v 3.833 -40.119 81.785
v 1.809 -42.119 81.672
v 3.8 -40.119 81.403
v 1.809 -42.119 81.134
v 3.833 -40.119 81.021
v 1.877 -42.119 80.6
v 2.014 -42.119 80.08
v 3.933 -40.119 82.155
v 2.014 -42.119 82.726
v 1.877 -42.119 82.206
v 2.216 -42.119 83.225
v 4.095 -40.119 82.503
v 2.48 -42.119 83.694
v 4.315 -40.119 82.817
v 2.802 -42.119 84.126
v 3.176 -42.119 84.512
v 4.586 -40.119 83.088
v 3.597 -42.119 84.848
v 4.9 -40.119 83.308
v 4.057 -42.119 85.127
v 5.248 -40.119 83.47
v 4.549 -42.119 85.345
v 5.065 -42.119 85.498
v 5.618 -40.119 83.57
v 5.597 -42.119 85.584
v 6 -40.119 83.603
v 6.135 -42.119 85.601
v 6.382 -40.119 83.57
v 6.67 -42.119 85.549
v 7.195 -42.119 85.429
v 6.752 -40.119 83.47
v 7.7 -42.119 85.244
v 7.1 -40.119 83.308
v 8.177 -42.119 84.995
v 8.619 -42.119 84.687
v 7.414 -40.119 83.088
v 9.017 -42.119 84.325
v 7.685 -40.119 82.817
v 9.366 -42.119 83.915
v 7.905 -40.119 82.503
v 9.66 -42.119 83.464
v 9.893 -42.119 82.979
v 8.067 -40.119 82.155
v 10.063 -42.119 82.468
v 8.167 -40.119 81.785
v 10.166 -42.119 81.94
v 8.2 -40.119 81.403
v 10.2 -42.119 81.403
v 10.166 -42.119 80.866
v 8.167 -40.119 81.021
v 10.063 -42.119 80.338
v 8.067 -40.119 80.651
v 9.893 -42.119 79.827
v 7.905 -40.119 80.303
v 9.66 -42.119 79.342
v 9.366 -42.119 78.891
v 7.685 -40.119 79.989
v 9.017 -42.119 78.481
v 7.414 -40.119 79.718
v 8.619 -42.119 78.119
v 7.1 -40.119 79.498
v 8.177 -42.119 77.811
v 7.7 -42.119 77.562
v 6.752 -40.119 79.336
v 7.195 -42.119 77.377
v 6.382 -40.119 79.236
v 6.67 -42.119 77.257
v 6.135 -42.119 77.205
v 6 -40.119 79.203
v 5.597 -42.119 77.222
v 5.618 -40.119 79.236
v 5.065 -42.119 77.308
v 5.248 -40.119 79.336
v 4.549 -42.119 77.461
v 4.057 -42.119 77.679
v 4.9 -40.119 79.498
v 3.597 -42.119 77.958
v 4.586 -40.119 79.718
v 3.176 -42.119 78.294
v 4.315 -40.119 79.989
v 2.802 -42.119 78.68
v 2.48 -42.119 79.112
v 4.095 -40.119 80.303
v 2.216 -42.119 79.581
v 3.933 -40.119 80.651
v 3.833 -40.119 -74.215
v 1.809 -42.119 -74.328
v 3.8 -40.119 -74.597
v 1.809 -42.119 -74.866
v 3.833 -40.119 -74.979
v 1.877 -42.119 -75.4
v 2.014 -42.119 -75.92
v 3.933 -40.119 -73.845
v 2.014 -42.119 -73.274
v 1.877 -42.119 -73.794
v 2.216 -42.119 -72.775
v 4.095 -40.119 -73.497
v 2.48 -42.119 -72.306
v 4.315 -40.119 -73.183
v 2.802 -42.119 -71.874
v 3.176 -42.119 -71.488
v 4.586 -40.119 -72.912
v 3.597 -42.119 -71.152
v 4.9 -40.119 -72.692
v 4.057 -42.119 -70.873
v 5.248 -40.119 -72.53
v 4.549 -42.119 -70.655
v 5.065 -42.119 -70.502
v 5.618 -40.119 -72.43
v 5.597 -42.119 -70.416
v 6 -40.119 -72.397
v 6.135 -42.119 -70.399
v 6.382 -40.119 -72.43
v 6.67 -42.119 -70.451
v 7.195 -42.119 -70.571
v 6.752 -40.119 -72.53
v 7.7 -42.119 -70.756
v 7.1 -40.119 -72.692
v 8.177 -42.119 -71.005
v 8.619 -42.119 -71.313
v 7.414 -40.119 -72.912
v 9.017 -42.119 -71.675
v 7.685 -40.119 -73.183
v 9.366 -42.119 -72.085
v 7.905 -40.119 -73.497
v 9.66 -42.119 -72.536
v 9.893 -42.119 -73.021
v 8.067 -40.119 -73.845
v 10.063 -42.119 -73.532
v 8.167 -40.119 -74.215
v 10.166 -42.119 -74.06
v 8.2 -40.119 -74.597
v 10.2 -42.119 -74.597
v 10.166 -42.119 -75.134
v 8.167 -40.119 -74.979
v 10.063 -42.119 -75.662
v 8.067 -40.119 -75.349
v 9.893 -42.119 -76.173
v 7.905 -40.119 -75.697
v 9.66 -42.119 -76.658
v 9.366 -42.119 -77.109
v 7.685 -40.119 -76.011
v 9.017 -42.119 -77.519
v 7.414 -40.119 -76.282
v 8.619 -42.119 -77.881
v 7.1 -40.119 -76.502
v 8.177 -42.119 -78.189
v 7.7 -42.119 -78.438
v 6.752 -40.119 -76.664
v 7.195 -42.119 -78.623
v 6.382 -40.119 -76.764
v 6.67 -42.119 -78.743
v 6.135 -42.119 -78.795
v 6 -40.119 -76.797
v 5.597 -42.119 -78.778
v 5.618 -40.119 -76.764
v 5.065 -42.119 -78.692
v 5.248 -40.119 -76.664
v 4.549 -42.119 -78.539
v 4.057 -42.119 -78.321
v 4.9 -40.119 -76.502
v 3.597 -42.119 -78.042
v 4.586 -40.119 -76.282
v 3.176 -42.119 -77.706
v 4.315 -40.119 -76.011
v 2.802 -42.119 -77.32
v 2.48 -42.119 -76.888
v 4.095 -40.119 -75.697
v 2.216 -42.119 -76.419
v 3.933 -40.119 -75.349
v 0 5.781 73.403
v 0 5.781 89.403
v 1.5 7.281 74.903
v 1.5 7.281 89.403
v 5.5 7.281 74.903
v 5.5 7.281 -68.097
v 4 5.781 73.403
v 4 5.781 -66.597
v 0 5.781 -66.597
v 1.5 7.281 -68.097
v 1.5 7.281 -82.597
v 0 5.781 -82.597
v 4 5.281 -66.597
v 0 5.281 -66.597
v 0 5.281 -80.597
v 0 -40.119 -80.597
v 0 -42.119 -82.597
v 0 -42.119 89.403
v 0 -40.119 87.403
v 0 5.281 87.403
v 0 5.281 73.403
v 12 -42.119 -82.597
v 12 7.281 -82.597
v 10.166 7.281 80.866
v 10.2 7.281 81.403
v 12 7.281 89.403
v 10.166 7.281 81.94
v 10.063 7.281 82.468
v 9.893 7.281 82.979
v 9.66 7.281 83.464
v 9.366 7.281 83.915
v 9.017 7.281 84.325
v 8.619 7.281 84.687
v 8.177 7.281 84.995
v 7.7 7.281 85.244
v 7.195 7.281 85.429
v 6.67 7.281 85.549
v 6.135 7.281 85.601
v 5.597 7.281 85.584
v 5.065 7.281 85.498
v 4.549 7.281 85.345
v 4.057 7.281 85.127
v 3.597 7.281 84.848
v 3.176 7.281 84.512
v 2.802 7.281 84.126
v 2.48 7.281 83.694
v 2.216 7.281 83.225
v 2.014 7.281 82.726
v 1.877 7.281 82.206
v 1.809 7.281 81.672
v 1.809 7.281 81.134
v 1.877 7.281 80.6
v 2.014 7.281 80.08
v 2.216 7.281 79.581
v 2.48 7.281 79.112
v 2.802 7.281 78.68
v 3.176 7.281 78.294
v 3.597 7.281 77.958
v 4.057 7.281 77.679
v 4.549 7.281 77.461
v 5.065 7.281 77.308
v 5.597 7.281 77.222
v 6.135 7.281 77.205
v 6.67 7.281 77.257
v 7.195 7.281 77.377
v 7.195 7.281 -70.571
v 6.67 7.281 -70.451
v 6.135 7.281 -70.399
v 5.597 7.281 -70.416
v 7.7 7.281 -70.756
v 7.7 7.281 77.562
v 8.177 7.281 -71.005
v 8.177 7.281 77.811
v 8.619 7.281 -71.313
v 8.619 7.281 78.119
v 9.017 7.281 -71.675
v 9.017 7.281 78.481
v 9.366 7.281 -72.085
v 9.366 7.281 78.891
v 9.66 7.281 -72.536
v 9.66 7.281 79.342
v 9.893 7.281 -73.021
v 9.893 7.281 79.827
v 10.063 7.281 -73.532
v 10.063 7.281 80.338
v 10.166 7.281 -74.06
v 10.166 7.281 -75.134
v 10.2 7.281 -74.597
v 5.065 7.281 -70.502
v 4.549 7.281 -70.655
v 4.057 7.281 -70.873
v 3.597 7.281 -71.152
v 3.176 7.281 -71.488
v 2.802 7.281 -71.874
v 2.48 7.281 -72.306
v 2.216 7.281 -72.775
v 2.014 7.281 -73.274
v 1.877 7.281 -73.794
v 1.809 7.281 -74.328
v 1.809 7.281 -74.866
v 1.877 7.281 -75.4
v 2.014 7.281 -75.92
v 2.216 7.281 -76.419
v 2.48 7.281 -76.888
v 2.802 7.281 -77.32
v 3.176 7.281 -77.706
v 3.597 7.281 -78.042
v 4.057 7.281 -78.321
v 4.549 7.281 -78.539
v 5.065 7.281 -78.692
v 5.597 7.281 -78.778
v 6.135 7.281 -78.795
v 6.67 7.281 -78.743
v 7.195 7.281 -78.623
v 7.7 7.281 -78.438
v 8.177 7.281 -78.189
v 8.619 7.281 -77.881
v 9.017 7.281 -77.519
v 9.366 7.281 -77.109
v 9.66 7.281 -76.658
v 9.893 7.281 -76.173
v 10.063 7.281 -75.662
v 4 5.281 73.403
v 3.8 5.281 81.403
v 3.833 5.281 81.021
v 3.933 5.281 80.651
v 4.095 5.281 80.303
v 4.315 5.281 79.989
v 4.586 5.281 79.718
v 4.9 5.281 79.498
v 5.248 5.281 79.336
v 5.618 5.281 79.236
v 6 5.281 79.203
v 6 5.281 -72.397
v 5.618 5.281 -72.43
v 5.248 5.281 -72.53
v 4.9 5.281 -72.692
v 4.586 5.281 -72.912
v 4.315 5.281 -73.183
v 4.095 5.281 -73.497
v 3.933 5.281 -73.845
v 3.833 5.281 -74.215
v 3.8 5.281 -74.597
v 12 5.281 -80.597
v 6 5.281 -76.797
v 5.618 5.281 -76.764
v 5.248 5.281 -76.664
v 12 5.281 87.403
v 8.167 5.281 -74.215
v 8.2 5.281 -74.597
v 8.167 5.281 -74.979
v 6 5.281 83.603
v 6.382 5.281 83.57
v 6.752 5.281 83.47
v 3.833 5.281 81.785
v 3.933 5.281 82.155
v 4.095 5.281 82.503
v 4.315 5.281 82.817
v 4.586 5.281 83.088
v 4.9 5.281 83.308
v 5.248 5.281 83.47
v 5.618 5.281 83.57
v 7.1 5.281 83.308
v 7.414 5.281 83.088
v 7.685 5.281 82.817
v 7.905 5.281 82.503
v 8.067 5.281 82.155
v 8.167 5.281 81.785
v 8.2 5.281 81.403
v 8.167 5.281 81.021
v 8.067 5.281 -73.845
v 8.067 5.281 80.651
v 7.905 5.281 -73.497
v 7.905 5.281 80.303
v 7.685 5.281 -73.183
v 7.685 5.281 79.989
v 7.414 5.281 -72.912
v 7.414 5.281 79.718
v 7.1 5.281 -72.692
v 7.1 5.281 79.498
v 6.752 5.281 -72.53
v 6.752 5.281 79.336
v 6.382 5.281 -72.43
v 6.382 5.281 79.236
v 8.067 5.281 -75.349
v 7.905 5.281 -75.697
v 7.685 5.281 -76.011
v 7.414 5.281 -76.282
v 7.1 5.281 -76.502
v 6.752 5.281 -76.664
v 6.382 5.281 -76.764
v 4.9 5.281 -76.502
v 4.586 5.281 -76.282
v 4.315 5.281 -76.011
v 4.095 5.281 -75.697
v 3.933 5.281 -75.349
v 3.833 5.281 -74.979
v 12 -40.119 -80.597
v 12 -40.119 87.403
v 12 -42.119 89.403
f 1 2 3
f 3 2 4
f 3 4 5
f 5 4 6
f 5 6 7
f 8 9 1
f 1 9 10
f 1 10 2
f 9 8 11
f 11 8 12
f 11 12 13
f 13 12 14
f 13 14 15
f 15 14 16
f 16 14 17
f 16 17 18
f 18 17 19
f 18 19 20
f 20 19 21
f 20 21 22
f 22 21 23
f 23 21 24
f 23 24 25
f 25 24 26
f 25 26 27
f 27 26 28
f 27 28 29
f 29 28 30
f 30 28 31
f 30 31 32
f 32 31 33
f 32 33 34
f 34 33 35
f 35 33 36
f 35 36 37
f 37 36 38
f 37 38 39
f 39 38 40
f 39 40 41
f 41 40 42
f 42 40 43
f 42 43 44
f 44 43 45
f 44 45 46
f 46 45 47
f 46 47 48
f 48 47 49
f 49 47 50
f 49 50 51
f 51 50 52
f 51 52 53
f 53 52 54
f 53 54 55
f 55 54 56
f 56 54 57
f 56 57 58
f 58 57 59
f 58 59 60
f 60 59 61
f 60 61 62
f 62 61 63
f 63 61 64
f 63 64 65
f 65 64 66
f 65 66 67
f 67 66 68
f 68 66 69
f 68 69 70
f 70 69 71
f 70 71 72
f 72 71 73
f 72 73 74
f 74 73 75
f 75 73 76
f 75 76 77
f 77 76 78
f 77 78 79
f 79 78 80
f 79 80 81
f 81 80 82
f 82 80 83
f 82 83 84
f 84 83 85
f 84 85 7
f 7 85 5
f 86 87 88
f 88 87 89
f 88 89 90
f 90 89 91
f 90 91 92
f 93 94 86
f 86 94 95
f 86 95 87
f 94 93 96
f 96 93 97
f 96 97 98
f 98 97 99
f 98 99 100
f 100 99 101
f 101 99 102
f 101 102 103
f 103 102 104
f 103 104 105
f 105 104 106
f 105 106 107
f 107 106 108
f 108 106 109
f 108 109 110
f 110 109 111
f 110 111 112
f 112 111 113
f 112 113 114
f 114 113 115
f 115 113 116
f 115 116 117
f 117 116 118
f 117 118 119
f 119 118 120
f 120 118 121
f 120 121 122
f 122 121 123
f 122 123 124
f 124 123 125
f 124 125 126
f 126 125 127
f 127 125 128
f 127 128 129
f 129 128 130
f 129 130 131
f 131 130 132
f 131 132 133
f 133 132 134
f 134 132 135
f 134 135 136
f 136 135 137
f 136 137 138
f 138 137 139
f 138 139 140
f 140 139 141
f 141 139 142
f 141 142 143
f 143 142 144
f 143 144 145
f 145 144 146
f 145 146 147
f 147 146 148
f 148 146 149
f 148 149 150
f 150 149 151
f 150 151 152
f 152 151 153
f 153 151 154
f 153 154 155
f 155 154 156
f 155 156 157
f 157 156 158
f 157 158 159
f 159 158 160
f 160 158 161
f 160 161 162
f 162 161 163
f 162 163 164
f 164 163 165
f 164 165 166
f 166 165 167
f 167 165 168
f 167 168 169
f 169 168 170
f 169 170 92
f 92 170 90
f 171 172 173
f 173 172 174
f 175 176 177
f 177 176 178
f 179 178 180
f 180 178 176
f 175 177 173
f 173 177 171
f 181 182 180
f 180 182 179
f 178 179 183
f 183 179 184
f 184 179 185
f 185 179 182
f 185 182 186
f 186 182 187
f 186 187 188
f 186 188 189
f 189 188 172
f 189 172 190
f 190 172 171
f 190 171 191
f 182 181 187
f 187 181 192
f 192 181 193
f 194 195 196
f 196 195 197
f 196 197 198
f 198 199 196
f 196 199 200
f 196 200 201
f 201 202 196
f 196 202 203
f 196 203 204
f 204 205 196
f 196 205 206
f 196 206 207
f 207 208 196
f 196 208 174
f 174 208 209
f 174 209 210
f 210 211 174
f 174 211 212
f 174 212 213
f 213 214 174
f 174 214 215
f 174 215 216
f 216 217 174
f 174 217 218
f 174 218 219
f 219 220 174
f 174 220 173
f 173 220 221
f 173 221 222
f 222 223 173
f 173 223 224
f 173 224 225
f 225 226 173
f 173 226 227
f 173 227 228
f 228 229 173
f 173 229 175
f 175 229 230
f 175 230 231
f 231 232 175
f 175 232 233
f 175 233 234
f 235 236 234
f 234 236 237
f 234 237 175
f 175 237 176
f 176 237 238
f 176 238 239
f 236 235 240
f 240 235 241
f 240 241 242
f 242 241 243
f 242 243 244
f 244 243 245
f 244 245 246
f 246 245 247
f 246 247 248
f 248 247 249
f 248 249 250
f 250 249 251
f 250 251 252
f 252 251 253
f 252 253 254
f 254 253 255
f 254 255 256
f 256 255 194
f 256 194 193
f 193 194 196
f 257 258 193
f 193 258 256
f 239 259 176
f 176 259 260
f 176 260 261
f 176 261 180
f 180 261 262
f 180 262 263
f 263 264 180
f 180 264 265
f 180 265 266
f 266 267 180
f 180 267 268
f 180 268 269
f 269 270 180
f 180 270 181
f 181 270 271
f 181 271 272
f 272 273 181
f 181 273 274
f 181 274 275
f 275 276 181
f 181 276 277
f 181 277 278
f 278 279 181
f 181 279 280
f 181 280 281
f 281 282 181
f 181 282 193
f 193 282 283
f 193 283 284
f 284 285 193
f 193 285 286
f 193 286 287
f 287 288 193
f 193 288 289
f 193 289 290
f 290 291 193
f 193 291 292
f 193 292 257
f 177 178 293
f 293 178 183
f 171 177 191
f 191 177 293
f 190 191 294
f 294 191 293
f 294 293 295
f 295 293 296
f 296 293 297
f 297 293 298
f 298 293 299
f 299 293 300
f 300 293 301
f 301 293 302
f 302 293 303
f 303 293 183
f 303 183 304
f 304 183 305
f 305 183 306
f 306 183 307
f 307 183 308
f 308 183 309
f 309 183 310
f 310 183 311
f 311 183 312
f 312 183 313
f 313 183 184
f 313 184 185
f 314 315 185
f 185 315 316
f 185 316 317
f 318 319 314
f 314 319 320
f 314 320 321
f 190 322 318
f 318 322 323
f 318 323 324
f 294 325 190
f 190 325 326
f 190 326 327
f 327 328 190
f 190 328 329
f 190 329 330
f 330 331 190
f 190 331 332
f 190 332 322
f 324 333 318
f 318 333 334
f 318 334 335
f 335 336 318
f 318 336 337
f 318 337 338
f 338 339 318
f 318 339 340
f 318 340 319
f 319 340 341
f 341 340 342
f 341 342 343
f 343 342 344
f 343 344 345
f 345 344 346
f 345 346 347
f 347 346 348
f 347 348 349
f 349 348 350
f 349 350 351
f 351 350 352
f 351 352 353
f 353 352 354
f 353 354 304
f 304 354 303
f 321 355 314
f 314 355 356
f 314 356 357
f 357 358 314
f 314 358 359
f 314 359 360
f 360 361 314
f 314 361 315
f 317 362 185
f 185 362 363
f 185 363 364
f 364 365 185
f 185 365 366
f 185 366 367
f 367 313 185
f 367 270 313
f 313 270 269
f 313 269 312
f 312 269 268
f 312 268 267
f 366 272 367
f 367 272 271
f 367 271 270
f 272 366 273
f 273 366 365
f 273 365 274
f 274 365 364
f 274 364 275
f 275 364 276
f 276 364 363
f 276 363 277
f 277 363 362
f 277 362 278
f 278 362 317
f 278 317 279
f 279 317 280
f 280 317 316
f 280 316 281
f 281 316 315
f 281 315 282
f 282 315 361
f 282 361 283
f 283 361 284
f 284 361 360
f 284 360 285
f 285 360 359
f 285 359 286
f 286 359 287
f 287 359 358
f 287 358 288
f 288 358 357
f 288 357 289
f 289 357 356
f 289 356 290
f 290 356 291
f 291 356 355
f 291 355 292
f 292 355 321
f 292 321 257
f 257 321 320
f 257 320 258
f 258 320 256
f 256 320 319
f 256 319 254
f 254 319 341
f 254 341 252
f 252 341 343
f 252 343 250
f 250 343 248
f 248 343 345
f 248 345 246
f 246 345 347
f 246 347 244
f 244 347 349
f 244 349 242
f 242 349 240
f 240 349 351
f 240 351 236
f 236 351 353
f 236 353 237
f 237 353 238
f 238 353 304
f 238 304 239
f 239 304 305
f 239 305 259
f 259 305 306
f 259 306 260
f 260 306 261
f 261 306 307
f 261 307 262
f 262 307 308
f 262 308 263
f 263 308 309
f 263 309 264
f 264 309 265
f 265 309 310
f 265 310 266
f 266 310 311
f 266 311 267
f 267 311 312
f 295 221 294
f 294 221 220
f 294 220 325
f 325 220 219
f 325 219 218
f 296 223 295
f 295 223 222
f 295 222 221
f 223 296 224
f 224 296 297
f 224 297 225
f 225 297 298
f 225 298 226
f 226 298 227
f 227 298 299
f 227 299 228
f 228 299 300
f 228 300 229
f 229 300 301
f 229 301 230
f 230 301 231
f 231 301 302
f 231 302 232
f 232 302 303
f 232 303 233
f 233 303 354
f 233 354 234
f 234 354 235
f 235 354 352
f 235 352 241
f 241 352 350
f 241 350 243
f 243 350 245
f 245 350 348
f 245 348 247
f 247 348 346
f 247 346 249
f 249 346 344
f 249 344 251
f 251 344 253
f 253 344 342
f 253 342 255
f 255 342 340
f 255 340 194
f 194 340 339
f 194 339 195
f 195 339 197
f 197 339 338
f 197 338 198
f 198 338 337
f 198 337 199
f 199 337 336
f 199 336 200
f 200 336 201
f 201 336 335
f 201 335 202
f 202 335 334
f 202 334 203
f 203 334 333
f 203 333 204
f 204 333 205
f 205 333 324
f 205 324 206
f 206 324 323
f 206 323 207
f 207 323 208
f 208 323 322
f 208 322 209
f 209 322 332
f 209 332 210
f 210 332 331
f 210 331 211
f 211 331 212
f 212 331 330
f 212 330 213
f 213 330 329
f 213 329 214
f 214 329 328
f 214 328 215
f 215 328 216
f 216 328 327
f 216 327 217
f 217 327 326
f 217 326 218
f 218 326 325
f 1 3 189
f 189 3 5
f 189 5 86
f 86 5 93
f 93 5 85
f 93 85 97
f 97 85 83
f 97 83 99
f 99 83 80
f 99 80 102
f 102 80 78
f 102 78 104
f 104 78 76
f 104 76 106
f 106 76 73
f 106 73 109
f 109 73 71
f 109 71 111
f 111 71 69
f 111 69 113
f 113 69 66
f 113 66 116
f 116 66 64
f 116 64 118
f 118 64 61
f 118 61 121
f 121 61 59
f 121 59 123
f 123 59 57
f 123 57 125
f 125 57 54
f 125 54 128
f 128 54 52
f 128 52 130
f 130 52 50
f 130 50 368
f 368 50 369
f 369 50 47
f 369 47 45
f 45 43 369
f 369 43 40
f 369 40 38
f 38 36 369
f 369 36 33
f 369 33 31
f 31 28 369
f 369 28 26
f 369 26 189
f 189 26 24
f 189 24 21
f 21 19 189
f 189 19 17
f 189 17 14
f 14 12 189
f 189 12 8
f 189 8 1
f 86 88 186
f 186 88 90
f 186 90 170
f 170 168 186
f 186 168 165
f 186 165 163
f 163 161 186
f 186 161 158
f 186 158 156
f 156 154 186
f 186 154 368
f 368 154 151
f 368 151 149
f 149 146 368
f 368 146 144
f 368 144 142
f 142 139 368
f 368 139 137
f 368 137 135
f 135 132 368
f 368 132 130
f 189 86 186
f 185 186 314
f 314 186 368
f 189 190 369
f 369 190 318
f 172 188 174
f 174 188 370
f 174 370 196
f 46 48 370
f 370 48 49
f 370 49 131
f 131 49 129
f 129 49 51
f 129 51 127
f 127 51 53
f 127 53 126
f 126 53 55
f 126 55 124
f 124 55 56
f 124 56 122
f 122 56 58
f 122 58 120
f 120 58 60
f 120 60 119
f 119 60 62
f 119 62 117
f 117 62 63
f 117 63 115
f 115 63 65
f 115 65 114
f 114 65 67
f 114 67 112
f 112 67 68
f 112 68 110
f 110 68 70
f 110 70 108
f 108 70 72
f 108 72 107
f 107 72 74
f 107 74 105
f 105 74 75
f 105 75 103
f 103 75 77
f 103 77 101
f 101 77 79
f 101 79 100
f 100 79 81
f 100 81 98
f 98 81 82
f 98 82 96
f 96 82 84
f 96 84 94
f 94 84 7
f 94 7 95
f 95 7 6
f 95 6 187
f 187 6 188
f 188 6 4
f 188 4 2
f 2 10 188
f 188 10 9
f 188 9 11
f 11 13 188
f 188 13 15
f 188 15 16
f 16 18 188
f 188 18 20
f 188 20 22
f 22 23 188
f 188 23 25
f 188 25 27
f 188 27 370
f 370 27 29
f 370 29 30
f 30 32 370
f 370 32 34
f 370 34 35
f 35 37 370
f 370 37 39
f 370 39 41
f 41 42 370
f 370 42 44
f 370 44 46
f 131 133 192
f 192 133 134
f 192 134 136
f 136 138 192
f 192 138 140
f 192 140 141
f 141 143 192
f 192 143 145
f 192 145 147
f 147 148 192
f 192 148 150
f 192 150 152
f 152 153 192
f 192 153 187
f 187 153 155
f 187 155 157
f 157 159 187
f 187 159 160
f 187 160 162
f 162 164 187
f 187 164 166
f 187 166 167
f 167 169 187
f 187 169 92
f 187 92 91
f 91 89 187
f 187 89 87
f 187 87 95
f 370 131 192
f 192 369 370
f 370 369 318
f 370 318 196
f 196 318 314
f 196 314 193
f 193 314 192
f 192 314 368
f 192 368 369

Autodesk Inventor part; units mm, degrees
ref_plane "YZ Plane" through (0, 0, 0) normal (1, 0, 0) x (0, 1, 0)
ref_plane "XZ Plane" through (0, 0, 0) normal (0, 1, 0) x (-1, 0, 0)
ref_plane "XY Plane" through (0, 0, 0) normal (0, 0, 1) x (1, 0, 0)
sketch "Sketch1" plane through (0, 0, 0) normal (1, 0, 0) x (0, 1, 0)
  line L0 (5.2806, 87.403) -> (-40.1194, 87.403)
  line L1 (-40.1194, 87.403) -> (-40.1194, -80.597)
  line L2 (-40.1194, -80.597) -> (5.2806, -80.597)
  line L3 (5.2806, -80.597) -> (5.2806, 87.403)
  line L4 (7.2806, 89.403) -> (-42.1194, 89.403)
  line L5 (-42.1194, 89.403) -> (-42.1194, -82.597)
  line L6 (-42.1194, -82.597) -> (7.2806, -82.597)
  line L7 (7.2806, -82.597) -> (7.2806, 89.403)
  point P0 (0, 0)
  dimension "d0" = 168
  dimension "d1" = 45.4
  dimension "d2" = 2
extrude "Extrusion1" add sketch "Sketch1" along normal blind 12
sketch "Sketch2" plane through (0, 7.2806, 89.403) normal (0, 1, 0) x (1, 0, 0)
  line L0 (12, 172) -> (12, 0) projected
  line L1 (0, 0) -> (12, 0) projected
  point P0 (0, 89.403)
  point P1 (6, 8)
  dimension "d5" = 6
  dimension "d6" = 8
hole "Hole1" at (6, 7.2806, 81.403) direction (0, -1, 0) diameter 4 depth 10 tip angle 118 countersink diameter 8.4 countersink angle 90
ref_plane "Work Plane1" through (0, -42.1194, 3.403) normal (0, 0, 1) x (1, 0, 0)
mirror "Mirror1" about plane through (0, -42.1194, 3.403) normal (0, 0, 1) of "Hole1"
sketch "Sketch3" plane through (0, 7.2806, 89.403) normal (0, 1, 0) x (1, 0, 0)
  line L0 (0, 0) -> (0, 172) projected
  line L1 (0, 16) -> (4, 16)
  line L2 (4, 16) -> (4, 156)
  line L3 (4, 156) -> (0, 156)
  line L4 (0, 156) -> (0, 16)
  line L5 (0, 0) -> (12, 0) projected
  line L6 (0, 172) -> (12, 172) projected
  circle A0 centre (6, 8) radius 2.2 projected
  point P0 (0, 89.403)
  point P1 (0, 156)
  dimension "d15" = 16
  dimension "d16" = 4
  dimension "d22" = 8
  dimension "d23" = 8
extrude "Extrusion2" cut sketch "Sketch3" against normal blind 10 contours L0 L3 L2 L1
chamfer "Chamfer1" distance 1.5 angle 45 5 edges at (4, 7.2806, 3.403) (2, 7.2806, 73.403) (0, 7.2806, 81.403) (2, 7.2806, -66.597) (0, 7.2806, -74.597)
sketch "Sketch4" plane through (12, 0, 0) normal (1, 0, 0) x (0, 0, -1)
  point P0 (0, 0)
sketch "Sketch5" plane through (0, -42.1194, -82.597) normal (0, -1, 0) x (1, 0, 0)
  circle A0 centre (6, 164) radius 2.2 projected
  circle A1 centre (6, 8) radius 2.2 projected
  point P0 (0, 82.597)
hole "Hole2" at (6, -42.1194, 81.403) at (6, -42.1194, -74.597) direction (0, 1, 0) diameter 4 depth 10 tip angle 118 countersink diameter 8.4 countersink angle 90
properties part number "front ring part"
